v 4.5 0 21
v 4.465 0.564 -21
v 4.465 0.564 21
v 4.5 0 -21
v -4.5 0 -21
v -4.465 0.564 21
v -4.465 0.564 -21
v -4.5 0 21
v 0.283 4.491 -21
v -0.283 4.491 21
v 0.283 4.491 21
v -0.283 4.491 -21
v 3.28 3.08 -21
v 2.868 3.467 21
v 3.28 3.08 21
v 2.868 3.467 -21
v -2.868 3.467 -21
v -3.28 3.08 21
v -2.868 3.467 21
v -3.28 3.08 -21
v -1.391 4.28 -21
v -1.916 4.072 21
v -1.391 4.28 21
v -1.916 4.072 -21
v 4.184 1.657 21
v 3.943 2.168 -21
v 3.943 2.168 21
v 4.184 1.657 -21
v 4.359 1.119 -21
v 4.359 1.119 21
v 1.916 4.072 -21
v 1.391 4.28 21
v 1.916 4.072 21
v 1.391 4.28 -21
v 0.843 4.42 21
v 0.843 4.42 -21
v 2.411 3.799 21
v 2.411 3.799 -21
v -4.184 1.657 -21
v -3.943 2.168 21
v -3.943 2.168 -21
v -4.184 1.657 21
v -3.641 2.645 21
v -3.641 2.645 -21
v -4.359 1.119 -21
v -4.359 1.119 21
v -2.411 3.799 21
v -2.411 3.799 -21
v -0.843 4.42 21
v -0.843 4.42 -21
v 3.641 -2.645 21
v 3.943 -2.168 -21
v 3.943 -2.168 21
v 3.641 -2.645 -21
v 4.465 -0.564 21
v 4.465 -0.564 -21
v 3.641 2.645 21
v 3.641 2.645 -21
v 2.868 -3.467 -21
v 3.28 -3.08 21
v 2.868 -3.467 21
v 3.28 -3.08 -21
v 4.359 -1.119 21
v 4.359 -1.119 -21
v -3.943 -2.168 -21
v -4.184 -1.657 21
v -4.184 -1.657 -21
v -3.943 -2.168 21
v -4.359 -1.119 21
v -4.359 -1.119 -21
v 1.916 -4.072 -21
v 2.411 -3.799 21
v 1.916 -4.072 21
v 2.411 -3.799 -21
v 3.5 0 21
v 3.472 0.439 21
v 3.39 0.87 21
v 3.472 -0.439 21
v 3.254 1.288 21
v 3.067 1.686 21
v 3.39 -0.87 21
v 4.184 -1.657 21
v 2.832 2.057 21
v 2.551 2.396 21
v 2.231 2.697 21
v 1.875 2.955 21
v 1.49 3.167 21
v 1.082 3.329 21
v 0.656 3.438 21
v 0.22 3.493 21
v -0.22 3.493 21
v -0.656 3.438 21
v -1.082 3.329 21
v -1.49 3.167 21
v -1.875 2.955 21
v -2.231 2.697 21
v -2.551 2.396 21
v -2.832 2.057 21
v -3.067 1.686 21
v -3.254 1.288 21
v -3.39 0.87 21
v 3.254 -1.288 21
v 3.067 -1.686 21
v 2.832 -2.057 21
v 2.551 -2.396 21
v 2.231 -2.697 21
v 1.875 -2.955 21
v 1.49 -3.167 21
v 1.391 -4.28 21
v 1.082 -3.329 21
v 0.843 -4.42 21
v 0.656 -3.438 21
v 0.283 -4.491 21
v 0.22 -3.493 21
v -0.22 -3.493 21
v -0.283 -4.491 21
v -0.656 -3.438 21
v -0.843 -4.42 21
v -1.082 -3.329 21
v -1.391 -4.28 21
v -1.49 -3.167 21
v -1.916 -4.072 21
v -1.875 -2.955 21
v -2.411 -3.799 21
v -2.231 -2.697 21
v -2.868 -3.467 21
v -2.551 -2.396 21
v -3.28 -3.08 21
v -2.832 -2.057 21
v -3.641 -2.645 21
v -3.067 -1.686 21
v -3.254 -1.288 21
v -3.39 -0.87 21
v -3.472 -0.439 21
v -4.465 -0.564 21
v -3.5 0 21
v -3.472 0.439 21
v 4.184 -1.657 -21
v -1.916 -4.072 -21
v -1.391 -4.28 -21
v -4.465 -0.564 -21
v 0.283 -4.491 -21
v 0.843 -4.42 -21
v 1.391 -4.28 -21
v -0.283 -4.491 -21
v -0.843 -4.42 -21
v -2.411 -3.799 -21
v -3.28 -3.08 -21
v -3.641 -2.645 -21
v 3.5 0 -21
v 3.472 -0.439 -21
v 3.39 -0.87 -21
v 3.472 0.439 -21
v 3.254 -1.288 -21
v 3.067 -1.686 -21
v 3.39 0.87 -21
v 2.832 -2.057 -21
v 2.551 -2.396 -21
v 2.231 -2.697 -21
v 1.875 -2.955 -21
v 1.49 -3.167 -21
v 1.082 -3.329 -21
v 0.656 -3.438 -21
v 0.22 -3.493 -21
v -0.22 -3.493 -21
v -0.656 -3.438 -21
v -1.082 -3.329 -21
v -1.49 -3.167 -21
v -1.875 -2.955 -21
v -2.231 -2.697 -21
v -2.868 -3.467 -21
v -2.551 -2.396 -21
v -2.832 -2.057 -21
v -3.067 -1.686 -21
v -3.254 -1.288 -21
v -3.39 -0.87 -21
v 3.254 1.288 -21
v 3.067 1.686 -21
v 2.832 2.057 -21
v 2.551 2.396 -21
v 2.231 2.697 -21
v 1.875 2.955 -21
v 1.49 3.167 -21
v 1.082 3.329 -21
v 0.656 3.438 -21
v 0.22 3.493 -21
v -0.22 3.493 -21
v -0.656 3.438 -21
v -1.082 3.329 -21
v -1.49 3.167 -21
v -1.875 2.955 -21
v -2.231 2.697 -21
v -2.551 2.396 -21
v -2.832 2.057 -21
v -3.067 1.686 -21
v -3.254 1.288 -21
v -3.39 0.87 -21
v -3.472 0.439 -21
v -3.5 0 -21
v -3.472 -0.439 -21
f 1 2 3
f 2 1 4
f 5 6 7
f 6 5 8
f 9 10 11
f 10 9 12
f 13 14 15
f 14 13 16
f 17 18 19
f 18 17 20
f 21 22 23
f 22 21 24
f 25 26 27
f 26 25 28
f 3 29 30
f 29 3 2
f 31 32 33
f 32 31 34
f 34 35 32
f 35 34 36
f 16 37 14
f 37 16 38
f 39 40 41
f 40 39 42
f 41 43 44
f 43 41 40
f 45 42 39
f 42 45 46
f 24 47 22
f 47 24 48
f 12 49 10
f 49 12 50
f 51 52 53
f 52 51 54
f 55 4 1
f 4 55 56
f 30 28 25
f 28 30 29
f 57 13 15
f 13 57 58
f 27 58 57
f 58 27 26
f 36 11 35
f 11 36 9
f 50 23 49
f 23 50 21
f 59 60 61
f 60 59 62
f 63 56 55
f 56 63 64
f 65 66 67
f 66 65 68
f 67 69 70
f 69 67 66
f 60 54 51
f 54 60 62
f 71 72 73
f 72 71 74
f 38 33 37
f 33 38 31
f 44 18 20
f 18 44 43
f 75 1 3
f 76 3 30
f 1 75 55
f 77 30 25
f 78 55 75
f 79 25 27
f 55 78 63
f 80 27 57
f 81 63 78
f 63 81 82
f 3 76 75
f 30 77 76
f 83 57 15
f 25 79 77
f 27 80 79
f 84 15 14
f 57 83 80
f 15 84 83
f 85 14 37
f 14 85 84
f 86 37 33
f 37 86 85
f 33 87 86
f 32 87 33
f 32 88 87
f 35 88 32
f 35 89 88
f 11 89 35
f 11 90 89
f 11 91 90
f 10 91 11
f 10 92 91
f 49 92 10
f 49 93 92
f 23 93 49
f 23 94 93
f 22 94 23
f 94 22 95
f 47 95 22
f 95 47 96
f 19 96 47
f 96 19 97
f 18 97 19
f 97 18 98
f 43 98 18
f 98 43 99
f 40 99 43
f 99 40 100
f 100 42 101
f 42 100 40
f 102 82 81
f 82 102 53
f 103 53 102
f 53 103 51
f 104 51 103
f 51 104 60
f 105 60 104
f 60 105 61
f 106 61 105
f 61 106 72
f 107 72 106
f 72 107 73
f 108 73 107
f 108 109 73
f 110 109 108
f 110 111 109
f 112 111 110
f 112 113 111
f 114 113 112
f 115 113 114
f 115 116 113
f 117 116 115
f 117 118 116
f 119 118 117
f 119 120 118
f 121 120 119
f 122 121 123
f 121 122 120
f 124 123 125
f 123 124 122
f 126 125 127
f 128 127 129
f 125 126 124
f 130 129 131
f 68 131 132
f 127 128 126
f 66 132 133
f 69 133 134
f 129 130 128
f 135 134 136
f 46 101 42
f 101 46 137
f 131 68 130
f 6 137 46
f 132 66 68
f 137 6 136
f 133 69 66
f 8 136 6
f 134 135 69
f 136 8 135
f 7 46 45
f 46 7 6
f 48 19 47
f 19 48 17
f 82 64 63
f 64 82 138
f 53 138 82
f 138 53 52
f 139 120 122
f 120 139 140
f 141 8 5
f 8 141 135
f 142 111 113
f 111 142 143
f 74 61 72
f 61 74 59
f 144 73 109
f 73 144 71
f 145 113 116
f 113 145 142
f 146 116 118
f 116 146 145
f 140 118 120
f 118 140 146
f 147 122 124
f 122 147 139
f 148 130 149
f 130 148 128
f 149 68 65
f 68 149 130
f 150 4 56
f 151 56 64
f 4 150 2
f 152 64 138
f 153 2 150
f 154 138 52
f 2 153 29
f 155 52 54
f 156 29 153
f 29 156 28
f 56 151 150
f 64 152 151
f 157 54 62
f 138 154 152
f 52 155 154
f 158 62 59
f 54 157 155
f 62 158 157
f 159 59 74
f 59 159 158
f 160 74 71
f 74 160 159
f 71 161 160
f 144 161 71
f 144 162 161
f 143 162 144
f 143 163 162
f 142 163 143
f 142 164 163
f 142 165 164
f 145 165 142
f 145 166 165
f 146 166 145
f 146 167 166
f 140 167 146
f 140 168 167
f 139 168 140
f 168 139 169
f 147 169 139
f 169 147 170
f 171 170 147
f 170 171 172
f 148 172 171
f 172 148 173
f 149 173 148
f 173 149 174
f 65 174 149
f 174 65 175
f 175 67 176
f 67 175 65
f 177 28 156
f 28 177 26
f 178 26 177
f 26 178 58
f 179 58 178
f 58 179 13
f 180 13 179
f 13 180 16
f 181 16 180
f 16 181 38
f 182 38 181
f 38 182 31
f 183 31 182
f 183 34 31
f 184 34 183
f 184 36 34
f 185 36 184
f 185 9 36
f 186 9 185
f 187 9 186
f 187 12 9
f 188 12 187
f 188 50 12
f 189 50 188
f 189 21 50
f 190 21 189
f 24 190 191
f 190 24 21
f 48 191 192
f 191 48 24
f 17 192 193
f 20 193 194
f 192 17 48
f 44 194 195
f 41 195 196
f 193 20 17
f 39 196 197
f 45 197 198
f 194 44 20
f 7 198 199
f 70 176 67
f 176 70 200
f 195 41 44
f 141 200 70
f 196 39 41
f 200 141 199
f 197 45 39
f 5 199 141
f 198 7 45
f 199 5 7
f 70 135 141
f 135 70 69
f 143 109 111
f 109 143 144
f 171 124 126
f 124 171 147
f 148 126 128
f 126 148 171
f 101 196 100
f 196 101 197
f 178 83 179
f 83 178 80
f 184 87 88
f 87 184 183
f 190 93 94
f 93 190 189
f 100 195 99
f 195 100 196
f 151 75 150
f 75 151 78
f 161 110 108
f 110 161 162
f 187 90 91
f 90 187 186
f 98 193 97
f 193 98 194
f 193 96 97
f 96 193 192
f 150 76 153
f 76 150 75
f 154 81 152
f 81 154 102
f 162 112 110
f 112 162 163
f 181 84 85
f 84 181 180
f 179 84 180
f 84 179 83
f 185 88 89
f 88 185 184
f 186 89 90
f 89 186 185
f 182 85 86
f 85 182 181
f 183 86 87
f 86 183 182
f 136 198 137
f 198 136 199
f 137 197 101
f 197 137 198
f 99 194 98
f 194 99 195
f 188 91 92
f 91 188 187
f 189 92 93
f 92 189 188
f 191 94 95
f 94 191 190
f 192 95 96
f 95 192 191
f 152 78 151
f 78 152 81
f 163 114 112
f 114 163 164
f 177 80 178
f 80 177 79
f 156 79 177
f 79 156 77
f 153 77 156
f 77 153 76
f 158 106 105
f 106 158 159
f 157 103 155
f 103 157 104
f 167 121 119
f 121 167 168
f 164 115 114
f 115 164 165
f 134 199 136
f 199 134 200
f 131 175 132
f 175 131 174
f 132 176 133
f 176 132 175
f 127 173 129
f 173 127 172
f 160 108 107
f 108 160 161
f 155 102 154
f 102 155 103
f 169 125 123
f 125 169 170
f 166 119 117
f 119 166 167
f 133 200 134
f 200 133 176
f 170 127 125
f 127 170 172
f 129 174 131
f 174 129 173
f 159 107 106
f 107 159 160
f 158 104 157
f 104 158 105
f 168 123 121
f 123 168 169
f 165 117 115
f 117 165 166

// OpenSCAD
$fn = 50;


difference() {
	union() {
		translate(v = [0, 0, -21.0000000000]) {
			cylinder(h = 42, r = 4.5000000000);
		}
	}
	union() {
		translate(v = [0, 0, -100.0000000000]) {
			cylinder(h = 200, r = 3.5000000000);
		}
	}
}
